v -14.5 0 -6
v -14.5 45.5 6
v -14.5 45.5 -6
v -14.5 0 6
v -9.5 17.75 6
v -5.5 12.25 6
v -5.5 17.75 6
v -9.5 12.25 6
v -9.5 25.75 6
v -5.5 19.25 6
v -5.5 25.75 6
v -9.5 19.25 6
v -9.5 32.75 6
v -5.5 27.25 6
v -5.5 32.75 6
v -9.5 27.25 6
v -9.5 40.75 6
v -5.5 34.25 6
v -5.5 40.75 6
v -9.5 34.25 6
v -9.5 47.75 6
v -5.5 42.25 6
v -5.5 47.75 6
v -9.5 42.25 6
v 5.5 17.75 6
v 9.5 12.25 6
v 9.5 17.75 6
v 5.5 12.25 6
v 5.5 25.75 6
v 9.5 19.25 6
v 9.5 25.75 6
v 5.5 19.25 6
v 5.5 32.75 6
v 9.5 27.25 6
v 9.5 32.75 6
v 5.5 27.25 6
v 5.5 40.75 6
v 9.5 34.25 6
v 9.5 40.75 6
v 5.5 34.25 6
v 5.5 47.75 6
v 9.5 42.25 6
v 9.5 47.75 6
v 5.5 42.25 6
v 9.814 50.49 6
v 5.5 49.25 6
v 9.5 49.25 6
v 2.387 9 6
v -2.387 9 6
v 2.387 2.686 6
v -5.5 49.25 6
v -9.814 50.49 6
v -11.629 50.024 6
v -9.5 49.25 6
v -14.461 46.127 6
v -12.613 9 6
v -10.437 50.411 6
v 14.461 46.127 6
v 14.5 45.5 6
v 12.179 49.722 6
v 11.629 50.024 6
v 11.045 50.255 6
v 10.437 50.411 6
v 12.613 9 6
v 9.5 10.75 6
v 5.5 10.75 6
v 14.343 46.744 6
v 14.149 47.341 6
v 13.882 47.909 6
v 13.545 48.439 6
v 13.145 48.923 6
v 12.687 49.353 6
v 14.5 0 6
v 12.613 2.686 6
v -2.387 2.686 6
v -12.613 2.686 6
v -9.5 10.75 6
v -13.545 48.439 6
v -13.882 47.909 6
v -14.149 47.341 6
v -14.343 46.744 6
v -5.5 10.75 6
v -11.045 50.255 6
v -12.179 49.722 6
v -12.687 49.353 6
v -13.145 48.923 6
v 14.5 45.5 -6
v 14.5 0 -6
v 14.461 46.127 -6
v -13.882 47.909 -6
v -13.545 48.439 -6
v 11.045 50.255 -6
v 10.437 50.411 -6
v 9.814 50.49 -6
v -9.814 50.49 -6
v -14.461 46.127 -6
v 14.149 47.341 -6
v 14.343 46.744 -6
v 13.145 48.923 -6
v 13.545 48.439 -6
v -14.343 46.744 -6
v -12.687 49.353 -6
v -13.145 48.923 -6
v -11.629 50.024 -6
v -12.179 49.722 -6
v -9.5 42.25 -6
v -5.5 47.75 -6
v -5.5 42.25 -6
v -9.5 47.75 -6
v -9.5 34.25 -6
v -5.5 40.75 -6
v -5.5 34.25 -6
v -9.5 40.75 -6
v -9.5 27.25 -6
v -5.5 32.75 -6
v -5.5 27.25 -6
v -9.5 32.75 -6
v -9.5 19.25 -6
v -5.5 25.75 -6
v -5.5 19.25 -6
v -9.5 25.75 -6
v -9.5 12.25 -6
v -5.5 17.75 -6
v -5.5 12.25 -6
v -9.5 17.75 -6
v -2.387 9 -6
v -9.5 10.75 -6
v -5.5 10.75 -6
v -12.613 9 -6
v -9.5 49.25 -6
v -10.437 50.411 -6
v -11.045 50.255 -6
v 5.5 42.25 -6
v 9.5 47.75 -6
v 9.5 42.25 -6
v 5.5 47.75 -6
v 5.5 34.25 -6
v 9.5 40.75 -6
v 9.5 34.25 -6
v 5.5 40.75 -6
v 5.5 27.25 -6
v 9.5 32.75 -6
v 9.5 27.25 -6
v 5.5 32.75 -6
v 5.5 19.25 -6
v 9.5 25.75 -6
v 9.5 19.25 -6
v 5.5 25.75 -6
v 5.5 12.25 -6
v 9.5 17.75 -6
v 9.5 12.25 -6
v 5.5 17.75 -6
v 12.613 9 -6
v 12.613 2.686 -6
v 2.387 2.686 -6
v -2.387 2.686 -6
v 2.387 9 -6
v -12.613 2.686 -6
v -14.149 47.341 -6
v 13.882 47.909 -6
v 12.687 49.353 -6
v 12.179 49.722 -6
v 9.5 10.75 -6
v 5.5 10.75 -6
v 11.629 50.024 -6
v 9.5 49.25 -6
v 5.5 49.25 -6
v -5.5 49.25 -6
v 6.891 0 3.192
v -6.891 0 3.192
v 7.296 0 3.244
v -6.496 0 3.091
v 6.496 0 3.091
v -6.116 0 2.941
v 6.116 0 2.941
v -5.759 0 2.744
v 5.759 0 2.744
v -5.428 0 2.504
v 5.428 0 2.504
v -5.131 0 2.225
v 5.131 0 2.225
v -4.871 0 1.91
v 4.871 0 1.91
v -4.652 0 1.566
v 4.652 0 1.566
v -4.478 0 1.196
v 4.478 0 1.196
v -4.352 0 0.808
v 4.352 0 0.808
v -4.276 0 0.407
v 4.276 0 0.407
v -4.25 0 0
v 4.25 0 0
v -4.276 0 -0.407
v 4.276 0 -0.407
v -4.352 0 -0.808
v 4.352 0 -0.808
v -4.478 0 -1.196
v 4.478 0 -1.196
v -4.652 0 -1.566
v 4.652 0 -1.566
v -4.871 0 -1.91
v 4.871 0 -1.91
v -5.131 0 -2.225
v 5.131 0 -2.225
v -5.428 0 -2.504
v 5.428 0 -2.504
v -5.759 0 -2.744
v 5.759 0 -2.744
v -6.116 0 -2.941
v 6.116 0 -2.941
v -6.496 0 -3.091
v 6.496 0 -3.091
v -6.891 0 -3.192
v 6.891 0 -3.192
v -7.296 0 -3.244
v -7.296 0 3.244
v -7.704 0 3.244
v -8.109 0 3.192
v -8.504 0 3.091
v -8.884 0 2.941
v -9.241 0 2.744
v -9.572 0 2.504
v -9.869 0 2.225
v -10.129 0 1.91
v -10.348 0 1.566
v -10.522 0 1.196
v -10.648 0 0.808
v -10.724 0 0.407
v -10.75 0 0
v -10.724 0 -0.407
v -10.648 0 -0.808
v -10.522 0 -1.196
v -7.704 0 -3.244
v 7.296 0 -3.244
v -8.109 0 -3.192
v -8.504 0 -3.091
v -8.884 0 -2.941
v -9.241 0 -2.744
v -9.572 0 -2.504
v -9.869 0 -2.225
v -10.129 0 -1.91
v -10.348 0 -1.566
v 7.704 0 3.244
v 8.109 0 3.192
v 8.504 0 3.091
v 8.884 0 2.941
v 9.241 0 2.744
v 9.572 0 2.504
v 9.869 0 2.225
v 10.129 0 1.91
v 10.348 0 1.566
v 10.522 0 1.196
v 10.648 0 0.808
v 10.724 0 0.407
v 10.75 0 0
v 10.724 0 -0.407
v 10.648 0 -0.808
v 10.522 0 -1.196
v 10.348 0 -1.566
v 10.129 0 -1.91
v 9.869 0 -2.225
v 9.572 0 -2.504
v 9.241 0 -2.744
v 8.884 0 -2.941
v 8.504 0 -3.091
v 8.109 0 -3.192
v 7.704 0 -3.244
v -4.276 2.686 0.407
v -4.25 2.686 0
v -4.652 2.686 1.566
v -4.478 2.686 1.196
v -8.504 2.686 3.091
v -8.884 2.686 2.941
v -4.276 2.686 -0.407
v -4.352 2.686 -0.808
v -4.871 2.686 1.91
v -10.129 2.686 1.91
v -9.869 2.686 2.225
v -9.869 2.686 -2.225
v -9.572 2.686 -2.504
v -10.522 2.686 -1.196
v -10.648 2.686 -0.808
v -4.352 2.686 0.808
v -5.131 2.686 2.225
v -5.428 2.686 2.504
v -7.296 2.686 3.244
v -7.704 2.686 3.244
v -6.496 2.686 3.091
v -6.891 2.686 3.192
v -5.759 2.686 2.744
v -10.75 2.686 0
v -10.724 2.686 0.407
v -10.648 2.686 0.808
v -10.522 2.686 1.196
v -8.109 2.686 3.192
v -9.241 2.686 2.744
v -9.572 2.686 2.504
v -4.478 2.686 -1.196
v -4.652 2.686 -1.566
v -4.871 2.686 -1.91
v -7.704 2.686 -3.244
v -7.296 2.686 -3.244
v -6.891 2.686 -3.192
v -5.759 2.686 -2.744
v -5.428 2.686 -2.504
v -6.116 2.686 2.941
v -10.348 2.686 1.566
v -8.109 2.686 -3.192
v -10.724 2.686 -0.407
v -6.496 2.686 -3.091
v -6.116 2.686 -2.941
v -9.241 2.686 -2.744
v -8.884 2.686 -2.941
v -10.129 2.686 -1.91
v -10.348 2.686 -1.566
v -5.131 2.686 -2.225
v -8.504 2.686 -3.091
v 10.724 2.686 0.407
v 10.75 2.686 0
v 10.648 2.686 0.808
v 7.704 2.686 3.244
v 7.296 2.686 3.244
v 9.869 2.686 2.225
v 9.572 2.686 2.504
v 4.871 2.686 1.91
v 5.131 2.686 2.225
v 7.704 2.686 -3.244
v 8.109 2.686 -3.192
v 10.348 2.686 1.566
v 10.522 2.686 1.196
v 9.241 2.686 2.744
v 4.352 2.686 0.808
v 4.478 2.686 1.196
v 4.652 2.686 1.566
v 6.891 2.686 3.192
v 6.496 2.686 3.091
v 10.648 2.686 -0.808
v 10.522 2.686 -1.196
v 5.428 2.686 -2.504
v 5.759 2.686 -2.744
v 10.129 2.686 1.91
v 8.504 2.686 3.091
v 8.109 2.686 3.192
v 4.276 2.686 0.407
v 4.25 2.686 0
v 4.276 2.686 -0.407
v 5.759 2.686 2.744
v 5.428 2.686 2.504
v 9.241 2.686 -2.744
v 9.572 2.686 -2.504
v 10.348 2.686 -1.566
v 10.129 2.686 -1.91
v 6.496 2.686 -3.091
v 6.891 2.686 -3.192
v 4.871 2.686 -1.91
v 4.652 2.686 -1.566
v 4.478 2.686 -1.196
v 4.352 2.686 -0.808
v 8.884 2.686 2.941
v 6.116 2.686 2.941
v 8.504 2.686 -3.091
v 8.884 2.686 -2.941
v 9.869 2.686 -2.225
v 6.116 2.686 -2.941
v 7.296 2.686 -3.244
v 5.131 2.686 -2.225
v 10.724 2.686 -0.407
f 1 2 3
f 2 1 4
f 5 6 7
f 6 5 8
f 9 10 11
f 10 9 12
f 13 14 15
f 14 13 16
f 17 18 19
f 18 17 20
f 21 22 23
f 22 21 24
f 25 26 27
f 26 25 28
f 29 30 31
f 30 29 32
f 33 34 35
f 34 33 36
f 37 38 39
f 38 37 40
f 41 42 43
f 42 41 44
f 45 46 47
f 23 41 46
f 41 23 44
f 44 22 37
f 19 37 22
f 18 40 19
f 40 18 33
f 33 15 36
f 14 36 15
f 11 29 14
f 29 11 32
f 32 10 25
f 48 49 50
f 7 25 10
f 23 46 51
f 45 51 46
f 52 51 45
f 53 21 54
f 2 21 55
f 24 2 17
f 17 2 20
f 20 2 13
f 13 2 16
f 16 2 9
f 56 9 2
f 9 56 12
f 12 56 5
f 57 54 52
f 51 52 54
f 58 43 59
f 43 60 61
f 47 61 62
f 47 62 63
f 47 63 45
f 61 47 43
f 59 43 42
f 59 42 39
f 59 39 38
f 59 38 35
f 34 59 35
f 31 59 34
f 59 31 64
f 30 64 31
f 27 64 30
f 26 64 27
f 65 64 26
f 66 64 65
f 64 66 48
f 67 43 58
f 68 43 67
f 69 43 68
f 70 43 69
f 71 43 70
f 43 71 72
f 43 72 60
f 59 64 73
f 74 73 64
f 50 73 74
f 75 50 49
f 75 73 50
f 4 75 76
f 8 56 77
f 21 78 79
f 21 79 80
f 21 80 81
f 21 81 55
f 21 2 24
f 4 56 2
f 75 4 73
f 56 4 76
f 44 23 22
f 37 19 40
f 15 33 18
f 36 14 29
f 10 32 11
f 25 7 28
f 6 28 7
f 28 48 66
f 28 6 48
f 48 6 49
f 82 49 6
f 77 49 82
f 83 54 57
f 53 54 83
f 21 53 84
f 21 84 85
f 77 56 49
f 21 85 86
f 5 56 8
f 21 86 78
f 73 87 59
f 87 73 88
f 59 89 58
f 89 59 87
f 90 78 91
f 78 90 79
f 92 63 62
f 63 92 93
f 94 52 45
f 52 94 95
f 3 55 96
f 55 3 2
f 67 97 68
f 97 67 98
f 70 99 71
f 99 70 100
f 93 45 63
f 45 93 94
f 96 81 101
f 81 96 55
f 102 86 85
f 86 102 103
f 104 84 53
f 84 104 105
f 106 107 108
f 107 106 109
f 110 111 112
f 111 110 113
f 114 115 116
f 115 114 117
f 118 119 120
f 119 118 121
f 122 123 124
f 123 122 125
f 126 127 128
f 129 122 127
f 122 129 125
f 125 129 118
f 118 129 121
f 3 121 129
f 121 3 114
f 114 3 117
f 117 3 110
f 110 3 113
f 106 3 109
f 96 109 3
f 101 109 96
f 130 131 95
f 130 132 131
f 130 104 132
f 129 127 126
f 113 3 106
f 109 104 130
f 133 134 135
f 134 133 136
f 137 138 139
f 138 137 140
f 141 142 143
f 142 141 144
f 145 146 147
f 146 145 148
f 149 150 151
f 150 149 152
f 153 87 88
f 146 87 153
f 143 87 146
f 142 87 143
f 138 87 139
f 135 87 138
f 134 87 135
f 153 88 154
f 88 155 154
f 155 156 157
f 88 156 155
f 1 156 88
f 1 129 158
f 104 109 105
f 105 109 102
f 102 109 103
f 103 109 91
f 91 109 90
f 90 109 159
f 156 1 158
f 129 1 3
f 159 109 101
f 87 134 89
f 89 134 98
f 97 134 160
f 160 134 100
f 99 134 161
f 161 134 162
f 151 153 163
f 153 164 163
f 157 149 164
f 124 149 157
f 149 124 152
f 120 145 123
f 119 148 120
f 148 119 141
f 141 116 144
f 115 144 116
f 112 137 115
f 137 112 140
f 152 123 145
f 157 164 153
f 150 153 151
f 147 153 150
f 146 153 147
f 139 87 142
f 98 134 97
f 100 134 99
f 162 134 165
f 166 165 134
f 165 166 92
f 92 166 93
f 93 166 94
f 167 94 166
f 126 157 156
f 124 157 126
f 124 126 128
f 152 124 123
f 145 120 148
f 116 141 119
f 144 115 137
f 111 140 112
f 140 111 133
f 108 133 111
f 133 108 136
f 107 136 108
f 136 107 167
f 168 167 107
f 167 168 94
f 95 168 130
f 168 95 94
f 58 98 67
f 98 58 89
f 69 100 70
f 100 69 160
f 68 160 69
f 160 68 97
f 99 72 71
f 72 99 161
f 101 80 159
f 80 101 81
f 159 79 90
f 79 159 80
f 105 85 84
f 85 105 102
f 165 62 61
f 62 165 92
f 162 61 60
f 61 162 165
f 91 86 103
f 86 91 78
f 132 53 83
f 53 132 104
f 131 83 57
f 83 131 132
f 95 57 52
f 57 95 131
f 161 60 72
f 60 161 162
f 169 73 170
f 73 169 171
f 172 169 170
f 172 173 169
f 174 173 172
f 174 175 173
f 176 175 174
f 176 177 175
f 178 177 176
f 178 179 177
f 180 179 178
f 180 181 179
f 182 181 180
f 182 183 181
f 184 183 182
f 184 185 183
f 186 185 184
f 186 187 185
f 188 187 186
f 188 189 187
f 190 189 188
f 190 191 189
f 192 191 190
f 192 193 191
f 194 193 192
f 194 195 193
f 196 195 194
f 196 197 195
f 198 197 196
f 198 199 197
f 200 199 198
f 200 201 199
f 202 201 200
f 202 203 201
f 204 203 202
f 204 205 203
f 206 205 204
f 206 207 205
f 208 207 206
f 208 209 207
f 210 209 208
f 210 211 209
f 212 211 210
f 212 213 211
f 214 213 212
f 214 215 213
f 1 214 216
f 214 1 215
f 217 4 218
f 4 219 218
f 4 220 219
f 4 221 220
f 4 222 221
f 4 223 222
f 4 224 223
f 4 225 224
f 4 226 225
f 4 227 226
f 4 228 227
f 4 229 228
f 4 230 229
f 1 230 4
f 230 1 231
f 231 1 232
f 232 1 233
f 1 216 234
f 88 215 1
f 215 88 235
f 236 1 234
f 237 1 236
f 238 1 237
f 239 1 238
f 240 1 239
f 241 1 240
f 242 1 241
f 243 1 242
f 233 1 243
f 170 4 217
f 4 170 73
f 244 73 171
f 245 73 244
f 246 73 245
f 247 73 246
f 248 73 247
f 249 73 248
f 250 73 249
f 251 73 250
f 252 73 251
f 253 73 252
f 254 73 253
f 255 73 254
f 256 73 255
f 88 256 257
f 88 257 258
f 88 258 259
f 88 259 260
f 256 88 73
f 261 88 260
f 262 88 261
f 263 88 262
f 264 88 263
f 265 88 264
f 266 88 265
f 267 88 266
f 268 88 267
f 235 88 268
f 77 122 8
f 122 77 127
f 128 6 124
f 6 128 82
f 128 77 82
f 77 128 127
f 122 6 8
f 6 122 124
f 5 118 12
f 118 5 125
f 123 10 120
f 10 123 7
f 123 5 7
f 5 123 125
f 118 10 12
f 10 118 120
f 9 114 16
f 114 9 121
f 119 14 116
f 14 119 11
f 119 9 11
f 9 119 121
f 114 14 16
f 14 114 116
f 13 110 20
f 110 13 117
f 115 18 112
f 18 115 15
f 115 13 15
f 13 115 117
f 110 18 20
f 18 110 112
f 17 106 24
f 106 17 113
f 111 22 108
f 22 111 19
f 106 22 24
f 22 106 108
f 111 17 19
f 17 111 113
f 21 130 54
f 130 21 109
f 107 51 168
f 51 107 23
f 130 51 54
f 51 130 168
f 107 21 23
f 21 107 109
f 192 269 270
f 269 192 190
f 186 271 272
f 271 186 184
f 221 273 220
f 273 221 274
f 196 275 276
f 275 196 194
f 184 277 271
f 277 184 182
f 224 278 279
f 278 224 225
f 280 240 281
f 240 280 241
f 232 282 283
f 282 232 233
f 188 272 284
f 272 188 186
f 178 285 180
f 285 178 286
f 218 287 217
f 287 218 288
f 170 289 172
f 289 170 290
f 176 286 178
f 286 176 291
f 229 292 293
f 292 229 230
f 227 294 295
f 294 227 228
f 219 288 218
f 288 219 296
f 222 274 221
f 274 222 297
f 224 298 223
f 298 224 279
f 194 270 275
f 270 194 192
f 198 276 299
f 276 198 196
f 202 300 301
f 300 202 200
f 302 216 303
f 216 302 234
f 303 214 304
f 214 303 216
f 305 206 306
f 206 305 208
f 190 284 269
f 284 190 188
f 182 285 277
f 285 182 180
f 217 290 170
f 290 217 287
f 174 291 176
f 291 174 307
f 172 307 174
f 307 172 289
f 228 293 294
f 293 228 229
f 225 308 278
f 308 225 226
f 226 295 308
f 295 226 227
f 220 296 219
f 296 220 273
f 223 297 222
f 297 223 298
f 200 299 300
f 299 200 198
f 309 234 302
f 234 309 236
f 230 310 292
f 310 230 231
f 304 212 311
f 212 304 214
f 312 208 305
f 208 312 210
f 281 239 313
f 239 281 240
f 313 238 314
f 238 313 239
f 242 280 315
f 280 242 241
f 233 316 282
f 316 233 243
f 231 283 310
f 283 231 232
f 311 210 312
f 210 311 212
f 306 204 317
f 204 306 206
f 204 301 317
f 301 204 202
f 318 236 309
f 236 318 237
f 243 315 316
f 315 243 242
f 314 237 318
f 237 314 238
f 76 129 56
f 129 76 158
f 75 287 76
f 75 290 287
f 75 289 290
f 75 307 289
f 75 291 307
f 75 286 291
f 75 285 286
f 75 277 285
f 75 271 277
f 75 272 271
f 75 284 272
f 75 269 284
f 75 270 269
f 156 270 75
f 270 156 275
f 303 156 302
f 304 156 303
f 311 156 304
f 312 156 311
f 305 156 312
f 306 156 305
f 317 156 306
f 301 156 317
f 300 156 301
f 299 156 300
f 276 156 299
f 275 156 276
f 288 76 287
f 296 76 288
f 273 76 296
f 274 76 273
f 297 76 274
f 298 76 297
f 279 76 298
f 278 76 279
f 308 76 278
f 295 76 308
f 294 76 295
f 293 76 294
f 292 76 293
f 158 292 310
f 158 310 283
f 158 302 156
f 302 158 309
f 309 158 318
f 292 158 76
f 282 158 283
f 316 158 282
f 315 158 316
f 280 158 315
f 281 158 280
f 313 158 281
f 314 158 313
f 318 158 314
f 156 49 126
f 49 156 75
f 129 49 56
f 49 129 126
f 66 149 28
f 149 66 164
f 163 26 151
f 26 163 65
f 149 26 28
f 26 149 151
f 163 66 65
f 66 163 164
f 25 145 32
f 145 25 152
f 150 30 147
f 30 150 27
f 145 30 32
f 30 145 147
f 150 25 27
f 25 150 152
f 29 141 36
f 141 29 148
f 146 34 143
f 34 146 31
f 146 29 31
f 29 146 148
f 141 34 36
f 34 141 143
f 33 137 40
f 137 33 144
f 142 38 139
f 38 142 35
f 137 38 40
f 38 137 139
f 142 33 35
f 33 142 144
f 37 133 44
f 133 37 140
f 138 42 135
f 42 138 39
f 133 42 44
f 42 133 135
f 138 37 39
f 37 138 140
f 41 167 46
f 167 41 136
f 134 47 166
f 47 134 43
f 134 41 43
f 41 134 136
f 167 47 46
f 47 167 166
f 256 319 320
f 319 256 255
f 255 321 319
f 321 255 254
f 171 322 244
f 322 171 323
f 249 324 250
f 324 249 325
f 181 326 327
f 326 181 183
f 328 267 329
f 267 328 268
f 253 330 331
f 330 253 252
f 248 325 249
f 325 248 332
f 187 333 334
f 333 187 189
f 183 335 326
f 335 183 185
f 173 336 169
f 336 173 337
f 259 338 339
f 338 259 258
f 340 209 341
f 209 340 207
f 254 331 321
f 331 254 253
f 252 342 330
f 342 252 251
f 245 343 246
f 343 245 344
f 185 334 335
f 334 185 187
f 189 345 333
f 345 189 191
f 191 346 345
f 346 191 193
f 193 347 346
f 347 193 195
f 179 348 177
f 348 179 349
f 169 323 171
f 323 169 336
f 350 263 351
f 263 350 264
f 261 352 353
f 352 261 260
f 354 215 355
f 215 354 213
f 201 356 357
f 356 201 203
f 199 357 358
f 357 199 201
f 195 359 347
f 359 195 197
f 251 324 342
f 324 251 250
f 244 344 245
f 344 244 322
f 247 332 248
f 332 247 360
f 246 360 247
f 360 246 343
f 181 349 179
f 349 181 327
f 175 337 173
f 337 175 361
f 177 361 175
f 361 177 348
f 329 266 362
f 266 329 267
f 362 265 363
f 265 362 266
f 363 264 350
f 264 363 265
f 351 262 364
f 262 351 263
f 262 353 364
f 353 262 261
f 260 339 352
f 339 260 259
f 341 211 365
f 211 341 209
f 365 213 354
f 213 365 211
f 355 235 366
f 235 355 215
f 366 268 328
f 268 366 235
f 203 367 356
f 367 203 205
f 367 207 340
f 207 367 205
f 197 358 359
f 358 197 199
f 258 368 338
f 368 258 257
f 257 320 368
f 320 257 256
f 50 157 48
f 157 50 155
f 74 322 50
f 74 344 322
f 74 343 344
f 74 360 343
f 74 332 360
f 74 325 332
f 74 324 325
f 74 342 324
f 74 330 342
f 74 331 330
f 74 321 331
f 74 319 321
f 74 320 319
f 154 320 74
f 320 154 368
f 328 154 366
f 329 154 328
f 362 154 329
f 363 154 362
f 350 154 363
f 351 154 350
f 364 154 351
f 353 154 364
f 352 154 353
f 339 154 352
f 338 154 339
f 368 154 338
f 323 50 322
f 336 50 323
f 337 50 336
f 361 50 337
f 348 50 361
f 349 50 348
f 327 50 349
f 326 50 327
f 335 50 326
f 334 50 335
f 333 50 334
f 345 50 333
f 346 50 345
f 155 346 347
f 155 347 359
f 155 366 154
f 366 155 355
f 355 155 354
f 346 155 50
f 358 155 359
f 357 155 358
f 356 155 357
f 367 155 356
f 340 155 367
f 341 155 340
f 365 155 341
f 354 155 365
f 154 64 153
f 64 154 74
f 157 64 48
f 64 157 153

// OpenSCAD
$fn = 50;


difference() {
	union() {
		translate(v = [0, 28.5000000000, -6.0000000000]) {
			rotate(a = [0, 0, 0]) {
				hull() {
					translate(v = [-9.5000000000, 17.0000000000, 0]) {
						rotate(a = [0, 0, 0]) {
							translate(v = [0, 0, 0]) {
								rotate(a = [0, 0, 0]) {
									cylinder(h = 12, r = 5);
								}
							}
						}
					}
					translate(v = [9.5000000000, 17.0000000000, 0]) {
						rotate(a = [0, 0, 0]) {
							translate(v = [0, 0, 0]) {
								rotate(a = [0, 0, 0]) {
									cylinder(h = 12, r = 5);
								}
							}
						}
					}
					translate(v = [-9.5000000000, -17.0000000000, 0]) {
						rotate(a = [0, 0, 0]) {
							translate(v = [0, 0, 0]) {
								rotate(a = [0, 0, 0]) {
									cylinder(h = 12, r = 5);
								}
							}
						}
					}
					translate(v = [9.5000000000, -17.0000000000, 0]) {
						rotate(a = [0, 0, 0]) {
							translate(v = [0, 0, 0]) {
								rotate(a = [0, 0, 0]) {
									cylinder(h = 12, r = 5);
								}
							}
						}
					}
				}
			}
		}
		translate(v = [-14.5000000000, 0, -6.0000000000]) {
			rotate(a = [0, 0, 0]) {
				cube(size = [29, 13.5000000000, 12]);
			}
		}
	}
	union() {
		translate(v = [-9.5000000000, 10.7500000000, -50]) {
			rotate(a = [0, 0, 0]) {
				cube(size = [4, 1.5000000000, 100]);
			}
		}
		translate(v = [-9.5000000000, 17.7500000000, -50]) {
			rotate(a = [0, 0, 0]) {
				cube(size = [4, 1.5000000000, 100]);
			}
		}
		translate(v = [-9.5000000000, 25.7500000000, -50]) {
			rotate(a = [0, 0, 0]) {
				cube(size = [4, 1.5000000000, 100]);
			}
		}
		translate(v = [-9.5000000000, 32.7500000000, -50]) {
			rotate(a = [0, 0, 0]) {
				cube(size = [4, 1.5000000000, 100]);
			}
		}
		translate(v = [-9.5000000000, 40.7500000000, -50]) {
			rotate(a = [0, 0, 0]) {
				cube(size = [4, 1.5000000000, 100]);
			}
		}
		translate(v = [-9.5000000000, 47.7500000000, -50]) {
			rotate(a = [0, 0, 0]) {
				cube(size = [4, 1.5000000000, 100]);
			}
		}
		translate(v = [-7.5000000000, 8, 0]) {
			rotate(a = [90, 0, 0]) {
				cylinder(h = 8, r = 3.2500000000);
			}
		}
		translate(v = [-12.3960138648, 9, -50]) {
			rotate(a = [90, 0, 0]) {
				cube(size = [10.2253032929, 100, 6.3142500000]);
			}
		}
		translate(v = [5.5000000000, 10.7500000000, -50]) {
			rotate(a = [0, 0, 0]) {
				cube(size = [4, 1.5000000000, 100]);
			}
		}
		translate(v = [5.5000000000, 17.7500000000, -50]) {
			rotate(a = [0, 0, 0]) {
				cube(size = [4, 1.5000000000, 100]);
			}
		}
		translate(v = [5.5000000000, 25.7500000000, -50]) {
			rotate(a = [0, 0, 0]) {
				cube(size = [4, 1.5000000000, 100]);
			}
		}
		translate(v = [5.5000000000, 32.7500000000, -50]) {
			rotate(a = [0, 0, 0]) {
				cube(size = [4, 1.5000000000, 100]);
			}
		}
		translate(v = [5.5000000000, 40.7500000000, -50]) {
			rotate(a = [0, 0, 0]) {
				cube(size = [4, 1.5000000000, 100]);
			}
		}
		translate(v = [5.5000000000, 47.7500000000, -50]) {
			rotate(a = [0, 0, 0]) {
				cube(size = [4, 1.5000000000, 100]);
			}
		}
		translate(v = [7.5000000000, 8, 0]) {
			rotate(a = [90, 0, 0]) {
				cylinder(h = 8, r = 3.2500000000);
			}
		}
		translate(v = [2.6039861352, 9, -50]) {
			rotate(a = [90, 0, 0]) {
				cube(size = [10.2253032929, 100, 6.3142500000]);
			}
		}
	}
}
